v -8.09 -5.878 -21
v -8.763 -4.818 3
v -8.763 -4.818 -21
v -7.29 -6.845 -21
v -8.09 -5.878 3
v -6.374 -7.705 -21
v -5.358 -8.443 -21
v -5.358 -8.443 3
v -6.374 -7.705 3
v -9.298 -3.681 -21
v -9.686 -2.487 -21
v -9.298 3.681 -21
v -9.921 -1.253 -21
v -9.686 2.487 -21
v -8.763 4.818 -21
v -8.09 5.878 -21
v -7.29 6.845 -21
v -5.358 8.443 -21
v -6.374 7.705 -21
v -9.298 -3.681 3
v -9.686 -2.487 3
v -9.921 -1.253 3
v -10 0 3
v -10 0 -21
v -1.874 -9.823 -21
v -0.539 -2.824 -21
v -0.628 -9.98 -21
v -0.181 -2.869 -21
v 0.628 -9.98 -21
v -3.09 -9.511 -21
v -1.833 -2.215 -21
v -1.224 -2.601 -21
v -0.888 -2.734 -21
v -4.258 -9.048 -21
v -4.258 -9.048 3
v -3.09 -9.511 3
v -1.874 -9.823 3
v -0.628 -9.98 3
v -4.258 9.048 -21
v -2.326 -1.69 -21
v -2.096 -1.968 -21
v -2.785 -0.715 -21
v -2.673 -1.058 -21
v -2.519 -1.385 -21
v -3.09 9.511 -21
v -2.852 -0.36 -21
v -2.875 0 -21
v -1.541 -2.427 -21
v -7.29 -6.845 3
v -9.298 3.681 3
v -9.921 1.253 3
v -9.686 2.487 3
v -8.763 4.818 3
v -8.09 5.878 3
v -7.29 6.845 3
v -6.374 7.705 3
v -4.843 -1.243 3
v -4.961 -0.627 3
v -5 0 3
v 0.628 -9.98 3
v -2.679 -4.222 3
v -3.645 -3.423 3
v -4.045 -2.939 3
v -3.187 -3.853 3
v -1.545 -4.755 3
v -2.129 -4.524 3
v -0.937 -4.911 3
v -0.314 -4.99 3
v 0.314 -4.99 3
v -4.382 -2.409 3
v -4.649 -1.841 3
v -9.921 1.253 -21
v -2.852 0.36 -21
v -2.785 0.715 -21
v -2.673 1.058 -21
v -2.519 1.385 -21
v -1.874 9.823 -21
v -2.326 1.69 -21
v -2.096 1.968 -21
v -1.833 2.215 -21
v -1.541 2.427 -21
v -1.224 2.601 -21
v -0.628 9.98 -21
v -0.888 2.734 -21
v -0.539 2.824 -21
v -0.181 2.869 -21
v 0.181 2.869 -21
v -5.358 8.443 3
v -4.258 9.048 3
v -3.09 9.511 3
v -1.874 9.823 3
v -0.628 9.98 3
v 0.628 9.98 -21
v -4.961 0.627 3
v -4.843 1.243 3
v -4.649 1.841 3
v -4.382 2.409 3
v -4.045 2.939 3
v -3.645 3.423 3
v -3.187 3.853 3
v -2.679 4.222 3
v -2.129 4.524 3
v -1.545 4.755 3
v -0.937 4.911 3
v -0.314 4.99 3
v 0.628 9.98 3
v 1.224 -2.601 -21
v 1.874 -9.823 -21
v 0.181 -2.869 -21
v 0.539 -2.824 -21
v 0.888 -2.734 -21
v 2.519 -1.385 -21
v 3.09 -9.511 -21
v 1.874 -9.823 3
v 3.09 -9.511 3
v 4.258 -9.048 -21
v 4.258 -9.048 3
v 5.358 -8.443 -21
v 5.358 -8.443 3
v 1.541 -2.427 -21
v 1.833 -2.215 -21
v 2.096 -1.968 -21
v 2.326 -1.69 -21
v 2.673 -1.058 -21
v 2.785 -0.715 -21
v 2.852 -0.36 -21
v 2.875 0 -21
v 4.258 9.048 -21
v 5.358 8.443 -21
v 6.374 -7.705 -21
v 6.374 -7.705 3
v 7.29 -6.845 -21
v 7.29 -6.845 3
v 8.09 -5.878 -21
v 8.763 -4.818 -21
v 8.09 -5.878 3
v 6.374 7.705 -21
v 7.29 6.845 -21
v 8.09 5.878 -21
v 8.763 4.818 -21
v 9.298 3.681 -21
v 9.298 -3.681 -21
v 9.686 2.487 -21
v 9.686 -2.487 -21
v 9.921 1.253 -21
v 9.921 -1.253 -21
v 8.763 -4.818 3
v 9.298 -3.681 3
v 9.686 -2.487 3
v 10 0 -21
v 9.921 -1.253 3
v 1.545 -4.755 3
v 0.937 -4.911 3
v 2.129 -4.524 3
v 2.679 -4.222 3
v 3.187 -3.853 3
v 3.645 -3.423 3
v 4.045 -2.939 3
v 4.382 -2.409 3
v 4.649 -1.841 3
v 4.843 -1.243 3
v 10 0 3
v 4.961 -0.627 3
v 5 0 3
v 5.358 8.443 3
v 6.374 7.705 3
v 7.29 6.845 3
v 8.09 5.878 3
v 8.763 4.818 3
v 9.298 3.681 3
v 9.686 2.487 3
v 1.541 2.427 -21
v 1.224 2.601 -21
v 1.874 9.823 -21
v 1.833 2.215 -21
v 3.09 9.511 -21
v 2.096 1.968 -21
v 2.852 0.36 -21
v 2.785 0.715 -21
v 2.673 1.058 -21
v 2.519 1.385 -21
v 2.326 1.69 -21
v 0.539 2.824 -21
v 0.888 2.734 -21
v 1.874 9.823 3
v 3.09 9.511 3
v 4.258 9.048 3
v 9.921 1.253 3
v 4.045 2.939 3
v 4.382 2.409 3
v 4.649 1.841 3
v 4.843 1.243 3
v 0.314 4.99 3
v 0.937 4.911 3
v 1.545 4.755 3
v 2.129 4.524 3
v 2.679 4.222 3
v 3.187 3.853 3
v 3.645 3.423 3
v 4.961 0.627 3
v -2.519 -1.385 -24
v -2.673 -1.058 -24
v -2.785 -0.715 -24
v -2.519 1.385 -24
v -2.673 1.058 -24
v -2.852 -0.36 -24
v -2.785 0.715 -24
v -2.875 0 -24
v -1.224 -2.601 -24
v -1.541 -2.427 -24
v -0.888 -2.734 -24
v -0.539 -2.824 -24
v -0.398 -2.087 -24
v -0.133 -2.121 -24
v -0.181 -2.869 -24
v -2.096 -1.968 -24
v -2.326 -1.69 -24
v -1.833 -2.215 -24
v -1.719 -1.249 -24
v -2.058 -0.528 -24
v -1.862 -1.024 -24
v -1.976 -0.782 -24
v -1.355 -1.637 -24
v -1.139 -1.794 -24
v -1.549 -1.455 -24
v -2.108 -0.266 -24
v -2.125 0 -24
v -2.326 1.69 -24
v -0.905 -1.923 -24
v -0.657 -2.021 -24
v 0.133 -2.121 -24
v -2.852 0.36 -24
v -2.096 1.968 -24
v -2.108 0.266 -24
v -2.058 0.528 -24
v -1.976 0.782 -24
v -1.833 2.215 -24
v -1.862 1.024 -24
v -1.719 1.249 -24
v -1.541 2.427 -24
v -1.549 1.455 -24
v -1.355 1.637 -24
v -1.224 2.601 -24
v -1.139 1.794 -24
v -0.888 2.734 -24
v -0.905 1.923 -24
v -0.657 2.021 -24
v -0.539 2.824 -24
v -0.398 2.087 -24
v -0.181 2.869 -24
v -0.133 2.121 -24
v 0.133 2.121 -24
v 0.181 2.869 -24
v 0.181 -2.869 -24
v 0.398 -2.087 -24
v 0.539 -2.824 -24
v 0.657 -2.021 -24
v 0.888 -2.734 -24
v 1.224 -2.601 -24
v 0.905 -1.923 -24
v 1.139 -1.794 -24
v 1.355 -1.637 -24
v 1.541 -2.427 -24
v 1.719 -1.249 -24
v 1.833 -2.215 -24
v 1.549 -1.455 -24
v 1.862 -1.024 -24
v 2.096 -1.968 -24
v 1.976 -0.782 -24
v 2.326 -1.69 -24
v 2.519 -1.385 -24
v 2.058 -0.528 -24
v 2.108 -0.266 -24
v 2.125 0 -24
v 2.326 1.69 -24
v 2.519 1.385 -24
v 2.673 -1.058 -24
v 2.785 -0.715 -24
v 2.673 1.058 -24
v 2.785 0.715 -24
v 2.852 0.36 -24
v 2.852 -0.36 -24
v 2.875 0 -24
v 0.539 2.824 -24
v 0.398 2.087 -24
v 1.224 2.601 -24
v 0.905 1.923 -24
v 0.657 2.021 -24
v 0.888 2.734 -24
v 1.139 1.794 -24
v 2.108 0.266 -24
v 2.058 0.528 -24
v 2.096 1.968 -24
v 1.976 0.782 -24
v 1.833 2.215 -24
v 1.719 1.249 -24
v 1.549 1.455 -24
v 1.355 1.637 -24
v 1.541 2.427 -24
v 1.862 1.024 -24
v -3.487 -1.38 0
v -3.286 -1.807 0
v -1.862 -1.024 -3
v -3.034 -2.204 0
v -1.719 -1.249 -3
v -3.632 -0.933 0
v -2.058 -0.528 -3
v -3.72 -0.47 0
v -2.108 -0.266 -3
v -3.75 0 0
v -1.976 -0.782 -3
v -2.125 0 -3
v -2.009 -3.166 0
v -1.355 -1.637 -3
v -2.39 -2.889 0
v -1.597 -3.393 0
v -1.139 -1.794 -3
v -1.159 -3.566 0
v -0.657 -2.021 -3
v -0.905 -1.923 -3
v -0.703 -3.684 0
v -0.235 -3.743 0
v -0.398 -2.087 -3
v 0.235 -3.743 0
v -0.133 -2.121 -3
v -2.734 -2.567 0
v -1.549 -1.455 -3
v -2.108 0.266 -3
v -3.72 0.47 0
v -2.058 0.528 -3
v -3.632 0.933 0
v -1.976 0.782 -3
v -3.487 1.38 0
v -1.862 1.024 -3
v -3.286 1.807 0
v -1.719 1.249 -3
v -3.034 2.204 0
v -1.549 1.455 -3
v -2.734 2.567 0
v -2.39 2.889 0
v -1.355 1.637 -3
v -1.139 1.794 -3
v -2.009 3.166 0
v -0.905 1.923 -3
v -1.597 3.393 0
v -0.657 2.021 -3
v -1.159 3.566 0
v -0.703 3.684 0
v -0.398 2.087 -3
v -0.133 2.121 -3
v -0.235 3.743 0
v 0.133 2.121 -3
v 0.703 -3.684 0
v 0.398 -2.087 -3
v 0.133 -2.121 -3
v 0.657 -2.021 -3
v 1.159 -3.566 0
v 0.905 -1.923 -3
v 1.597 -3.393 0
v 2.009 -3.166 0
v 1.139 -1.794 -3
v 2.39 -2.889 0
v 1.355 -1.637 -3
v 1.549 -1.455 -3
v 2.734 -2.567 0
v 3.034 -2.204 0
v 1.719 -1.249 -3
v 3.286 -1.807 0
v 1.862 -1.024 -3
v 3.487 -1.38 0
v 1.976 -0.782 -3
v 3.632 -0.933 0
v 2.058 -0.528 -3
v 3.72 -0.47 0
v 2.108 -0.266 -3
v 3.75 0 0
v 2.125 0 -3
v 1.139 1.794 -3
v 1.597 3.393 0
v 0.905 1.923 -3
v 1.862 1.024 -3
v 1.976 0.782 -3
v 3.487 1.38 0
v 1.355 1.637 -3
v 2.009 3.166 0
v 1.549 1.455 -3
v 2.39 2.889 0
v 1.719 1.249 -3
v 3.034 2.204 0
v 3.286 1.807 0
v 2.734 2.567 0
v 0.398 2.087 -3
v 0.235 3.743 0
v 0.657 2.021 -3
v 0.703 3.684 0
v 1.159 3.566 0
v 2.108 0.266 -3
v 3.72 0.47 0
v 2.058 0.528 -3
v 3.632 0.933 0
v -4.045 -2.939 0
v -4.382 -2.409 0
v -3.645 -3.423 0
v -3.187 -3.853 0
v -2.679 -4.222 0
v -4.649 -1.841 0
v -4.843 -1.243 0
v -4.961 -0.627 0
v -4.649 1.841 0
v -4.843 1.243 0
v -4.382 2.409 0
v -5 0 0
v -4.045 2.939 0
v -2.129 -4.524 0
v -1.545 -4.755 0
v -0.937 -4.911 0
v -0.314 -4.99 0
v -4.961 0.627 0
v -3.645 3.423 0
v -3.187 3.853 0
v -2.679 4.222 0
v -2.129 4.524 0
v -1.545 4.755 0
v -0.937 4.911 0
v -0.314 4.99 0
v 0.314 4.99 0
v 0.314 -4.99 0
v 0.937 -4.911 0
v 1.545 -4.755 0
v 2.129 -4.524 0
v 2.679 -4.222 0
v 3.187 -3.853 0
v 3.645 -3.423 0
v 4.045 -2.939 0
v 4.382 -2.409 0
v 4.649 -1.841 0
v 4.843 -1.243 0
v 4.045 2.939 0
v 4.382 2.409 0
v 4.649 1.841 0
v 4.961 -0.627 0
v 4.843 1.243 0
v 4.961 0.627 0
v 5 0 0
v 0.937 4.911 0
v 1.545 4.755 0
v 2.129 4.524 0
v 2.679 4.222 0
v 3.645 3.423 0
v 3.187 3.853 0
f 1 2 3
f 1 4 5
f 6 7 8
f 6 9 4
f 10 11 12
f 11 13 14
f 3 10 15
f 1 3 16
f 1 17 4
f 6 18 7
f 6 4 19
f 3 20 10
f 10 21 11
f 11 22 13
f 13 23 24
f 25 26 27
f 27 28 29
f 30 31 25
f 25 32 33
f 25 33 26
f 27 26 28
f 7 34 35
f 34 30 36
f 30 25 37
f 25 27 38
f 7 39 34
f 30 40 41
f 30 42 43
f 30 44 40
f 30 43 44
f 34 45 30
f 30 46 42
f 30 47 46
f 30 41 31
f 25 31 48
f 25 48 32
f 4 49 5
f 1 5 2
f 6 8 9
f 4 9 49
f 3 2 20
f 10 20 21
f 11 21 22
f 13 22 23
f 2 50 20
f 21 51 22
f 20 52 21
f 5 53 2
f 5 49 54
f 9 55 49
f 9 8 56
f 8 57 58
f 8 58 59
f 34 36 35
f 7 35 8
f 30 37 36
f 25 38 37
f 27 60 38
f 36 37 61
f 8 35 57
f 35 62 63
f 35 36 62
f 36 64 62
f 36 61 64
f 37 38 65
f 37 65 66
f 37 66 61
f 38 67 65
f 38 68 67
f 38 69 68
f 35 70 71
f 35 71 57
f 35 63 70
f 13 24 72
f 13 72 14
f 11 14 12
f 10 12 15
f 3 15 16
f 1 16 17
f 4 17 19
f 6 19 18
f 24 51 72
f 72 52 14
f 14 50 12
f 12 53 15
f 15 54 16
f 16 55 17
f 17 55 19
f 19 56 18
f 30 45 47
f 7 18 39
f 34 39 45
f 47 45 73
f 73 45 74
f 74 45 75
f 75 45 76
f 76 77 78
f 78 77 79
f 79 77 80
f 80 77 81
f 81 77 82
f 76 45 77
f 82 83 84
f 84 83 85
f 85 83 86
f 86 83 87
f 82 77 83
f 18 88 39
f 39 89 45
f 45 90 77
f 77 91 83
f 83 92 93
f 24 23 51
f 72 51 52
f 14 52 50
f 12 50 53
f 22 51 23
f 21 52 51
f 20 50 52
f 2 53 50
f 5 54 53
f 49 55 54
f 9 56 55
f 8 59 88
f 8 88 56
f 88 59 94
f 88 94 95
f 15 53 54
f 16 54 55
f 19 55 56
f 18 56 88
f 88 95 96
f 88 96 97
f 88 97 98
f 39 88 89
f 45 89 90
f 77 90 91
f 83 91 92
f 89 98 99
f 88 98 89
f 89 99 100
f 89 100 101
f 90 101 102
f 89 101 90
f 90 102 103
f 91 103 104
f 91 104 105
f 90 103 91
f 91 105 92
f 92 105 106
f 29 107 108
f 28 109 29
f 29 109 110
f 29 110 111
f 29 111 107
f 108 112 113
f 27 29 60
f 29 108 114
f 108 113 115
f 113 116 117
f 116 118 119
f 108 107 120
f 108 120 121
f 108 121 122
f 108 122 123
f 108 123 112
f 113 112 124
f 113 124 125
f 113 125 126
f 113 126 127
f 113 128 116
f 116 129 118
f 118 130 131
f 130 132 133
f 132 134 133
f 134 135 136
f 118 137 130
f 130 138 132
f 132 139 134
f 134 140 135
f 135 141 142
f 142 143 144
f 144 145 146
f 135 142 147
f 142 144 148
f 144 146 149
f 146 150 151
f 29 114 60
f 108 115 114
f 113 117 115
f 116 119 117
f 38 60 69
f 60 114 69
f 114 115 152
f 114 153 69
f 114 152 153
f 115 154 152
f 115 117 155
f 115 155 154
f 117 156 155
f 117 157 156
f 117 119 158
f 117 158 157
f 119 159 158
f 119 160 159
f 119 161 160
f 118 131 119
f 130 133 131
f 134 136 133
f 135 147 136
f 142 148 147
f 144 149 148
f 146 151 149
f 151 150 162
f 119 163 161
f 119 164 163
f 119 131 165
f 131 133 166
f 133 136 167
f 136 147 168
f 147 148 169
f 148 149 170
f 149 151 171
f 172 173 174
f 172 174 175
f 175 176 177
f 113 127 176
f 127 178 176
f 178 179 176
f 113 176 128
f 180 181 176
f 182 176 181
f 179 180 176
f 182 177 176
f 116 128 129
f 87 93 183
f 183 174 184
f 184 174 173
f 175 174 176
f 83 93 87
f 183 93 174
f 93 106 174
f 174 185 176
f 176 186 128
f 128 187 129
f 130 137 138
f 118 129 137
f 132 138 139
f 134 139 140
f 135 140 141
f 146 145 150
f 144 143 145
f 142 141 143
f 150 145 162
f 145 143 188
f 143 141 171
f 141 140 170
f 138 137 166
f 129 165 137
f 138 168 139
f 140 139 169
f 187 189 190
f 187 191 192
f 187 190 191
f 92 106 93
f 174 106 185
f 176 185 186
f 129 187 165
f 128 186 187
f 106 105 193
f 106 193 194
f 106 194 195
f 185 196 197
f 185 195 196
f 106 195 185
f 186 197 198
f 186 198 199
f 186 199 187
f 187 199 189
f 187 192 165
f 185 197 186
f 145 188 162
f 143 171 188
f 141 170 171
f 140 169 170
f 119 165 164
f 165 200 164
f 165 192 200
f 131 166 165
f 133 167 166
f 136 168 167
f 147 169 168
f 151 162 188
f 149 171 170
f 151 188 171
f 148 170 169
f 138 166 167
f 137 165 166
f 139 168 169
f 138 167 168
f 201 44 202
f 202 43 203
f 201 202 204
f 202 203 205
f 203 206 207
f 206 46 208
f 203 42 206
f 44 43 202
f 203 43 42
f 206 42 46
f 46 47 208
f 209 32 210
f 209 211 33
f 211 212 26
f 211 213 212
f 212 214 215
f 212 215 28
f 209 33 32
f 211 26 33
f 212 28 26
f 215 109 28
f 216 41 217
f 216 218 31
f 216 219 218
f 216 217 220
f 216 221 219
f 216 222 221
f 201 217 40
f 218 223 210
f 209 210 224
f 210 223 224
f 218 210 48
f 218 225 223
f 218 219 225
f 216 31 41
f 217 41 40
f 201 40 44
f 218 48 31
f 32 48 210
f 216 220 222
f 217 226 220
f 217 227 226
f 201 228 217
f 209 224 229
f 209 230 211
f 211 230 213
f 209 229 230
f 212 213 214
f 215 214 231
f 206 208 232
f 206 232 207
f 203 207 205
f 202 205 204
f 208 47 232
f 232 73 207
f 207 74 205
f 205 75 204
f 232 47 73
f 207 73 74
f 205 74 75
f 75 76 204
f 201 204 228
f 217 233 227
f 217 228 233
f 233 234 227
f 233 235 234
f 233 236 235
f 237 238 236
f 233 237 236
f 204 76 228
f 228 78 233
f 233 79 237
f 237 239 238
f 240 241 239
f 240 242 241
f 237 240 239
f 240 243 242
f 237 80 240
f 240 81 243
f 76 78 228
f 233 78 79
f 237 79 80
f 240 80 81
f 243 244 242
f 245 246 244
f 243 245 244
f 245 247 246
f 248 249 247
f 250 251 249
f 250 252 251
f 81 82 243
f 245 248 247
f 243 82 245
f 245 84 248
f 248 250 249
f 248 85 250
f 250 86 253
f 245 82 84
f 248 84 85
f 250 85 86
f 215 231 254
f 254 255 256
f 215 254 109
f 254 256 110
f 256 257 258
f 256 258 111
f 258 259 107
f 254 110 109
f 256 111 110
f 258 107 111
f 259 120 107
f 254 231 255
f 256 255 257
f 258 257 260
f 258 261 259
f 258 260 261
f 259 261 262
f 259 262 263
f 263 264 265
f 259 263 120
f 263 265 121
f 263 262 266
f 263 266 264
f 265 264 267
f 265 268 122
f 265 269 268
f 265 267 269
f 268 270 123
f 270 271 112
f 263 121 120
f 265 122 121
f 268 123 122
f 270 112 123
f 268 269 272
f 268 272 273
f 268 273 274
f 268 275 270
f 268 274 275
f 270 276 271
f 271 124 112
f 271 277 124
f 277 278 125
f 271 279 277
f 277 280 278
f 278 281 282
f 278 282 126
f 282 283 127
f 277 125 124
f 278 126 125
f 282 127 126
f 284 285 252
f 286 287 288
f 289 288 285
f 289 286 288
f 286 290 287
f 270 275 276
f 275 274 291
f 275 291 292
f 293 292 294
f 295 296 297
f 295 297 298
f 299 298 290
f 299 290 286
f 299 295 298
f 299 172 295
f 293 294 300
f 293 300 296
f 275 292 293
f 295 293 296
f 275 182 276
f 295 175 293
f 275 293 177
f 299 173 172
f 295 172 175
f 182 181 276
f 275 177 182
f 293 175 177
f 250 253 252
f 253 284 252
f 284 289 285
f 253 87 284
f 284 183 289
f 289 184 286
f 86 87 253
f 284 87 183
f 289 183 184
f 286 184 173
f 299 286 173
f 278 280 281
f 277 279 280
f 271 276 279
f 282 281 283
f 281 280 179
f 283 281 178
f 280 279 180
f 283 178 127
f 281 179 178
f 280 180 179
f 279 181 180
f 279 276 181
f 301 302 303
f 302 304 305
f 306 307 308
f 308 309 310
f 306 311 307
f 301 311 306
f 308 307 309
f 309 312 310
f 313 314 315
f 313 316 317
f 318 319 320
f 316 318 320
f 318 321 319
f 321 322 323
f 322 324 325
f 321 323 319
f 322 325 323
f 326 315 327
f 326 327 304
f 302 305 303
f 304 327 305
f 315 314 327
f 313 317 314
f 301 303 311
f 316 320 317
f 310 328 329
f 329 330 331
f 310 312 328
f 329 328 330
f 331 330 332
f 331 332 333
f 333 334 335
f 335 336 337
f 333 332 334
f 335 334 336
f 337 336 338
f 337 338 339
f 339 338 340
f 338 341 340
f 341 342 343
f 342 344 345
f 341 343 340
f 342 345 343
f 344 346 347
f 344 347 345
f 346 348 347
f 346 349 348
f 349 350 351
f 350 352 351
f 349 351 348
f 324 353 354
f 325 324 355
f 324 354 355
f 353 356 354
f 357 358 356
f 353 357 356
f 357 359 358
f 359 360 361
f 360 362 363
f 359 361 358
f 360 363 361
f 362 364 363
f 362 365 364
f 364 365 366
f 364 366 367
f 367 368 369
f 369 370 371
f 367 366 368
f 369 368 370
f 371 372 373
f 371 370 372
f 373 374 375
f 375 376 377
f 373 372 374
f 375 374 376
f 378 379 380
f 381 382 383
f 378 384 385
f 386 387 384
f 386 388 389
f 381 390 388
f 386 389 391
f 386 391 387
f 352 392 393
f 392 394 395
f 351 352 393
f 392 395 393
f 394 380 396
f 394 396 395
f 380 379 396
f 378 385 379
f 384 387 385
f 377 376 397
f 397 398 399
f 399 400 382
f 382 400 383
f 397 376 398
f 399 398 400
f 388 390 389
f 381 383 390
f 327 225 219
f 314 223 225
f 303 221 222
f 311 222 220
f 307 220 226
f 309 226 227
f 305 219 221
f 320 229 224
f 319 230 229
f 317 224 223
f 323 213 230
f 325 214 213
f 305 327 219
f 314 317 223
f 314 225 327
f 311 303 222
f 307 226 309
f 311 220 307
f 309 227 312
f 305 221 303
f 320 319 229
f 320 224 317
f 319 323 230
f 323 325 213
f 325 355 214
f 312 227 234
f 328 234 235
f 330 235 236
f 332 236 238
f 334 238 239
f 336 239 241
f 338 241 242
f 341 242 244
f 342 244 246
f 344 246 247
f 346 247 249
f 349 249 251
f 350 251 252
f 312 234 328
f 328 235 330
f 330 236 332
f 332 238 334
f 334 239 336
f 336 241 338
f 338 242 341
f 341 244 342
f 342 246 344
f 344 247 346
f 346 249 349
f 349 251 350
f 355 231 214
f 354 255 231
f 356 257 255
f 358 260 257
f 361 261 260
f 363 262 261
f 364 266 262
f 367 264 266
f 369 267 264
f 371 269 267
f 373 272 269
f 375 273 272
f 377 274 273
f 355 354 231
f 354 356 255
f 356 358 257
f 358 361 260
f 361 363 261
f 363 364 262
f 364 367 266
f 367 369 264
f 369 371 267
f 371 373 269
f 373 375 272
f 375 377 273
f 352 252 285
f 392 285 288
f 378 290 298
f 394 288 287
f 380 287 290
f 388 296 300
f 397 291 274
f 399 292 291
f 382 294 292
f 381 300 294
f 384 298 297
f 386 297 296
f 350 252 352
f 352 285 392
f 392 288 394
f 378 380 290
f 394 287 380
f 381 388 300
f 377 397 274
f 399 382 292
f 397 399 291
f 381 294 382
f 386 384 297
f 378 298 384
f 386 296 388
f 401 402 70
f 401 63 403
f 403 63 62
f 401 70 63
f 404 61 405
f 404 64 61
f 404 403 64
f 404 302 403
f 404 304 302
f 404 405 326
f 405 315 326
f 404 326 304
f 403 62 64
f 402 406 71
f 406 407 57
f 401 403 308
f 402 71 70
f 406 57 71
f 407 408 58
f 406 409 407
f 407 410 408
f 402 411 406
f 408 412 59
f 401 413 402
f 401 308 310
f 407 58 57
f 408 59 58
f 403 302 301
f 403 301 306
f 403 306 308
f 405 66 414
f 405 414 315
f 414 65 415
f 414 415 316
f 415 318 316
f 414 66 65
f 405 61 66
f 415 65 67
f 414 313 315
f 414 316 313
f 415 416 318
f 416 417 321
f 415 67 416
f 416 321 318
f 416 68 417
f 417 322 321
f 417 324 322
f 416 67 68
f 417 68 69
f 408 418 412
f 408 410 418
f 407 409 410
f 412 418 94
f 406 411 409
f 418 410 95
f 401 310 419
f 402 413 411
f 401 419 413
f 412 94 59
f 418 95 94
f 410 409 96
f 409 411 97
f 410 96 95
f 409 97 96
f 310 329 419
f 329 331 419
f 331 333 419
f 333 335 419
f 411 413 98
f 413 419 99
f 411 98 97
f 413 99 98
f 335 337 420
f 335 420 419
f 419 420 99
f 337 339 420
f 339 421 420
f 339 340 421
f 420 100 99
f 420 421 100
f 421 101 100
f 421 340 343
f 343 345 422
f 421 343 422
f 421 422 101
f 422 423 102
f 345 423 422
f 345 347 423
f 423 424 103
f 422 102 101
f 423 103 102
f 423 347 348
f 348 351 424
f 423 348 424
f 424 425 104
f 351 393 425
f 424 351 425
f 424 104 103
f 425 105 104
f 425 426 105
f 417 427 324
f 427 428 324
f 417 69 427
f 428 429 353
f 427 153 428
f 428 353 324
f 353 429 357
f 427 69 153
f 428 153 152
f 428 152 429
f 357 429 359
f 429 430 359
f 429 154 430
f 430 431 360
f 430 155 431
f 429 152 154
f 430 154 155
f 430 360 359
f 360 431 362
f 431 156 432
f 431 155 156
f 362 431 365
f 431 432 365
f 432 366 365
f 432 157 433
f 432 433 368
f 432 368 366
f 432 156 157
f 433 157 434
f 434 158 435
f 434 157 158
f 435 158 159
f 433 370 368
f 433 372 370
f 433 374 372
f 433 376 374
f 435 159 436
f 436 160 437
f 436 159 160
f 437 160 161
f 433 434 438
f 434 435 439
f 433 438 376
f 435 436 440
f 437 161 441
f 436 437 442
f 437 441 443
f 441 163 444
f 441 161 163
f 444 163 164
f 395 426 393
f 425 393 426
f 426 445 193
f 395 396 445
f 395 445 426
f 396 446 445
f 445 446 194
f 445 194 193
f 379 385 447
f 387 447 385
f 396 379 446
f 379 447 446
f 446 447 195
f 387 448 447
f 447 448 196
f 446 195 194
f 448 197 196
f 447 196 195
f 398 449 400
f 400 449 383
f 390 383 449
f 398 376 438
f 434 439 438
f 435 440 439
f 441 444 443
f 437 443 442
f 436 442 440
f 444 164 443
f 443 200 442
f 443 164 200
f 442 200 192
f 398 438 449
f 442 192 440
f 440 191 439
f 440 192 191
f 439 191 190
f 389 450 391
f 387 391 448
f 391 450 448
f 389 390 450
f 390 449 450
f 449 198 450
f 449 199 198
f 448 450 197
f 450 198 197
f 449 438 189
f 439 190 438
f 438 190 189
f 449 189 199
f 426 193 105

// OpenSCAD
$fn = 50;


difference() {
	union() {
		translate(v = [0, 0, -21.0000000000]) {
			cylinder(h = 24, r = 10.0000000000);
		}
		#translate(v = [0, 0, -24.0000000000]) {
			cylinder(h = 24, r = 2.8750000000);
		}
	}
	union() {
		translate(v = [0, 0, 0]) {
			rotate(a = [0, 0, 0]) {
				difference() {
					union() {
						translate(v = [0, 0, -24.0000000000]) {
							cylinder(h = 24, r = 2.0000000000);
						}
						translate(v = [0, 0, -3]) {
							cylinder(h = 3, r1 = 2.1250000000, r2 = 3.7500000000);
						}
						translate(v = [0, 0, -24.0000000000]) {
							cylinder(h = 24, r = 2.1250000000);
						}
						translate(v = [0, 0, -24.0000000000]) {
							cylinder(h = 24, r = 2.0000000000);
						}
					}
					union();
				}
			}
		}
		#cylinder(h = 3, r = 5.0000000000);
	}
}
